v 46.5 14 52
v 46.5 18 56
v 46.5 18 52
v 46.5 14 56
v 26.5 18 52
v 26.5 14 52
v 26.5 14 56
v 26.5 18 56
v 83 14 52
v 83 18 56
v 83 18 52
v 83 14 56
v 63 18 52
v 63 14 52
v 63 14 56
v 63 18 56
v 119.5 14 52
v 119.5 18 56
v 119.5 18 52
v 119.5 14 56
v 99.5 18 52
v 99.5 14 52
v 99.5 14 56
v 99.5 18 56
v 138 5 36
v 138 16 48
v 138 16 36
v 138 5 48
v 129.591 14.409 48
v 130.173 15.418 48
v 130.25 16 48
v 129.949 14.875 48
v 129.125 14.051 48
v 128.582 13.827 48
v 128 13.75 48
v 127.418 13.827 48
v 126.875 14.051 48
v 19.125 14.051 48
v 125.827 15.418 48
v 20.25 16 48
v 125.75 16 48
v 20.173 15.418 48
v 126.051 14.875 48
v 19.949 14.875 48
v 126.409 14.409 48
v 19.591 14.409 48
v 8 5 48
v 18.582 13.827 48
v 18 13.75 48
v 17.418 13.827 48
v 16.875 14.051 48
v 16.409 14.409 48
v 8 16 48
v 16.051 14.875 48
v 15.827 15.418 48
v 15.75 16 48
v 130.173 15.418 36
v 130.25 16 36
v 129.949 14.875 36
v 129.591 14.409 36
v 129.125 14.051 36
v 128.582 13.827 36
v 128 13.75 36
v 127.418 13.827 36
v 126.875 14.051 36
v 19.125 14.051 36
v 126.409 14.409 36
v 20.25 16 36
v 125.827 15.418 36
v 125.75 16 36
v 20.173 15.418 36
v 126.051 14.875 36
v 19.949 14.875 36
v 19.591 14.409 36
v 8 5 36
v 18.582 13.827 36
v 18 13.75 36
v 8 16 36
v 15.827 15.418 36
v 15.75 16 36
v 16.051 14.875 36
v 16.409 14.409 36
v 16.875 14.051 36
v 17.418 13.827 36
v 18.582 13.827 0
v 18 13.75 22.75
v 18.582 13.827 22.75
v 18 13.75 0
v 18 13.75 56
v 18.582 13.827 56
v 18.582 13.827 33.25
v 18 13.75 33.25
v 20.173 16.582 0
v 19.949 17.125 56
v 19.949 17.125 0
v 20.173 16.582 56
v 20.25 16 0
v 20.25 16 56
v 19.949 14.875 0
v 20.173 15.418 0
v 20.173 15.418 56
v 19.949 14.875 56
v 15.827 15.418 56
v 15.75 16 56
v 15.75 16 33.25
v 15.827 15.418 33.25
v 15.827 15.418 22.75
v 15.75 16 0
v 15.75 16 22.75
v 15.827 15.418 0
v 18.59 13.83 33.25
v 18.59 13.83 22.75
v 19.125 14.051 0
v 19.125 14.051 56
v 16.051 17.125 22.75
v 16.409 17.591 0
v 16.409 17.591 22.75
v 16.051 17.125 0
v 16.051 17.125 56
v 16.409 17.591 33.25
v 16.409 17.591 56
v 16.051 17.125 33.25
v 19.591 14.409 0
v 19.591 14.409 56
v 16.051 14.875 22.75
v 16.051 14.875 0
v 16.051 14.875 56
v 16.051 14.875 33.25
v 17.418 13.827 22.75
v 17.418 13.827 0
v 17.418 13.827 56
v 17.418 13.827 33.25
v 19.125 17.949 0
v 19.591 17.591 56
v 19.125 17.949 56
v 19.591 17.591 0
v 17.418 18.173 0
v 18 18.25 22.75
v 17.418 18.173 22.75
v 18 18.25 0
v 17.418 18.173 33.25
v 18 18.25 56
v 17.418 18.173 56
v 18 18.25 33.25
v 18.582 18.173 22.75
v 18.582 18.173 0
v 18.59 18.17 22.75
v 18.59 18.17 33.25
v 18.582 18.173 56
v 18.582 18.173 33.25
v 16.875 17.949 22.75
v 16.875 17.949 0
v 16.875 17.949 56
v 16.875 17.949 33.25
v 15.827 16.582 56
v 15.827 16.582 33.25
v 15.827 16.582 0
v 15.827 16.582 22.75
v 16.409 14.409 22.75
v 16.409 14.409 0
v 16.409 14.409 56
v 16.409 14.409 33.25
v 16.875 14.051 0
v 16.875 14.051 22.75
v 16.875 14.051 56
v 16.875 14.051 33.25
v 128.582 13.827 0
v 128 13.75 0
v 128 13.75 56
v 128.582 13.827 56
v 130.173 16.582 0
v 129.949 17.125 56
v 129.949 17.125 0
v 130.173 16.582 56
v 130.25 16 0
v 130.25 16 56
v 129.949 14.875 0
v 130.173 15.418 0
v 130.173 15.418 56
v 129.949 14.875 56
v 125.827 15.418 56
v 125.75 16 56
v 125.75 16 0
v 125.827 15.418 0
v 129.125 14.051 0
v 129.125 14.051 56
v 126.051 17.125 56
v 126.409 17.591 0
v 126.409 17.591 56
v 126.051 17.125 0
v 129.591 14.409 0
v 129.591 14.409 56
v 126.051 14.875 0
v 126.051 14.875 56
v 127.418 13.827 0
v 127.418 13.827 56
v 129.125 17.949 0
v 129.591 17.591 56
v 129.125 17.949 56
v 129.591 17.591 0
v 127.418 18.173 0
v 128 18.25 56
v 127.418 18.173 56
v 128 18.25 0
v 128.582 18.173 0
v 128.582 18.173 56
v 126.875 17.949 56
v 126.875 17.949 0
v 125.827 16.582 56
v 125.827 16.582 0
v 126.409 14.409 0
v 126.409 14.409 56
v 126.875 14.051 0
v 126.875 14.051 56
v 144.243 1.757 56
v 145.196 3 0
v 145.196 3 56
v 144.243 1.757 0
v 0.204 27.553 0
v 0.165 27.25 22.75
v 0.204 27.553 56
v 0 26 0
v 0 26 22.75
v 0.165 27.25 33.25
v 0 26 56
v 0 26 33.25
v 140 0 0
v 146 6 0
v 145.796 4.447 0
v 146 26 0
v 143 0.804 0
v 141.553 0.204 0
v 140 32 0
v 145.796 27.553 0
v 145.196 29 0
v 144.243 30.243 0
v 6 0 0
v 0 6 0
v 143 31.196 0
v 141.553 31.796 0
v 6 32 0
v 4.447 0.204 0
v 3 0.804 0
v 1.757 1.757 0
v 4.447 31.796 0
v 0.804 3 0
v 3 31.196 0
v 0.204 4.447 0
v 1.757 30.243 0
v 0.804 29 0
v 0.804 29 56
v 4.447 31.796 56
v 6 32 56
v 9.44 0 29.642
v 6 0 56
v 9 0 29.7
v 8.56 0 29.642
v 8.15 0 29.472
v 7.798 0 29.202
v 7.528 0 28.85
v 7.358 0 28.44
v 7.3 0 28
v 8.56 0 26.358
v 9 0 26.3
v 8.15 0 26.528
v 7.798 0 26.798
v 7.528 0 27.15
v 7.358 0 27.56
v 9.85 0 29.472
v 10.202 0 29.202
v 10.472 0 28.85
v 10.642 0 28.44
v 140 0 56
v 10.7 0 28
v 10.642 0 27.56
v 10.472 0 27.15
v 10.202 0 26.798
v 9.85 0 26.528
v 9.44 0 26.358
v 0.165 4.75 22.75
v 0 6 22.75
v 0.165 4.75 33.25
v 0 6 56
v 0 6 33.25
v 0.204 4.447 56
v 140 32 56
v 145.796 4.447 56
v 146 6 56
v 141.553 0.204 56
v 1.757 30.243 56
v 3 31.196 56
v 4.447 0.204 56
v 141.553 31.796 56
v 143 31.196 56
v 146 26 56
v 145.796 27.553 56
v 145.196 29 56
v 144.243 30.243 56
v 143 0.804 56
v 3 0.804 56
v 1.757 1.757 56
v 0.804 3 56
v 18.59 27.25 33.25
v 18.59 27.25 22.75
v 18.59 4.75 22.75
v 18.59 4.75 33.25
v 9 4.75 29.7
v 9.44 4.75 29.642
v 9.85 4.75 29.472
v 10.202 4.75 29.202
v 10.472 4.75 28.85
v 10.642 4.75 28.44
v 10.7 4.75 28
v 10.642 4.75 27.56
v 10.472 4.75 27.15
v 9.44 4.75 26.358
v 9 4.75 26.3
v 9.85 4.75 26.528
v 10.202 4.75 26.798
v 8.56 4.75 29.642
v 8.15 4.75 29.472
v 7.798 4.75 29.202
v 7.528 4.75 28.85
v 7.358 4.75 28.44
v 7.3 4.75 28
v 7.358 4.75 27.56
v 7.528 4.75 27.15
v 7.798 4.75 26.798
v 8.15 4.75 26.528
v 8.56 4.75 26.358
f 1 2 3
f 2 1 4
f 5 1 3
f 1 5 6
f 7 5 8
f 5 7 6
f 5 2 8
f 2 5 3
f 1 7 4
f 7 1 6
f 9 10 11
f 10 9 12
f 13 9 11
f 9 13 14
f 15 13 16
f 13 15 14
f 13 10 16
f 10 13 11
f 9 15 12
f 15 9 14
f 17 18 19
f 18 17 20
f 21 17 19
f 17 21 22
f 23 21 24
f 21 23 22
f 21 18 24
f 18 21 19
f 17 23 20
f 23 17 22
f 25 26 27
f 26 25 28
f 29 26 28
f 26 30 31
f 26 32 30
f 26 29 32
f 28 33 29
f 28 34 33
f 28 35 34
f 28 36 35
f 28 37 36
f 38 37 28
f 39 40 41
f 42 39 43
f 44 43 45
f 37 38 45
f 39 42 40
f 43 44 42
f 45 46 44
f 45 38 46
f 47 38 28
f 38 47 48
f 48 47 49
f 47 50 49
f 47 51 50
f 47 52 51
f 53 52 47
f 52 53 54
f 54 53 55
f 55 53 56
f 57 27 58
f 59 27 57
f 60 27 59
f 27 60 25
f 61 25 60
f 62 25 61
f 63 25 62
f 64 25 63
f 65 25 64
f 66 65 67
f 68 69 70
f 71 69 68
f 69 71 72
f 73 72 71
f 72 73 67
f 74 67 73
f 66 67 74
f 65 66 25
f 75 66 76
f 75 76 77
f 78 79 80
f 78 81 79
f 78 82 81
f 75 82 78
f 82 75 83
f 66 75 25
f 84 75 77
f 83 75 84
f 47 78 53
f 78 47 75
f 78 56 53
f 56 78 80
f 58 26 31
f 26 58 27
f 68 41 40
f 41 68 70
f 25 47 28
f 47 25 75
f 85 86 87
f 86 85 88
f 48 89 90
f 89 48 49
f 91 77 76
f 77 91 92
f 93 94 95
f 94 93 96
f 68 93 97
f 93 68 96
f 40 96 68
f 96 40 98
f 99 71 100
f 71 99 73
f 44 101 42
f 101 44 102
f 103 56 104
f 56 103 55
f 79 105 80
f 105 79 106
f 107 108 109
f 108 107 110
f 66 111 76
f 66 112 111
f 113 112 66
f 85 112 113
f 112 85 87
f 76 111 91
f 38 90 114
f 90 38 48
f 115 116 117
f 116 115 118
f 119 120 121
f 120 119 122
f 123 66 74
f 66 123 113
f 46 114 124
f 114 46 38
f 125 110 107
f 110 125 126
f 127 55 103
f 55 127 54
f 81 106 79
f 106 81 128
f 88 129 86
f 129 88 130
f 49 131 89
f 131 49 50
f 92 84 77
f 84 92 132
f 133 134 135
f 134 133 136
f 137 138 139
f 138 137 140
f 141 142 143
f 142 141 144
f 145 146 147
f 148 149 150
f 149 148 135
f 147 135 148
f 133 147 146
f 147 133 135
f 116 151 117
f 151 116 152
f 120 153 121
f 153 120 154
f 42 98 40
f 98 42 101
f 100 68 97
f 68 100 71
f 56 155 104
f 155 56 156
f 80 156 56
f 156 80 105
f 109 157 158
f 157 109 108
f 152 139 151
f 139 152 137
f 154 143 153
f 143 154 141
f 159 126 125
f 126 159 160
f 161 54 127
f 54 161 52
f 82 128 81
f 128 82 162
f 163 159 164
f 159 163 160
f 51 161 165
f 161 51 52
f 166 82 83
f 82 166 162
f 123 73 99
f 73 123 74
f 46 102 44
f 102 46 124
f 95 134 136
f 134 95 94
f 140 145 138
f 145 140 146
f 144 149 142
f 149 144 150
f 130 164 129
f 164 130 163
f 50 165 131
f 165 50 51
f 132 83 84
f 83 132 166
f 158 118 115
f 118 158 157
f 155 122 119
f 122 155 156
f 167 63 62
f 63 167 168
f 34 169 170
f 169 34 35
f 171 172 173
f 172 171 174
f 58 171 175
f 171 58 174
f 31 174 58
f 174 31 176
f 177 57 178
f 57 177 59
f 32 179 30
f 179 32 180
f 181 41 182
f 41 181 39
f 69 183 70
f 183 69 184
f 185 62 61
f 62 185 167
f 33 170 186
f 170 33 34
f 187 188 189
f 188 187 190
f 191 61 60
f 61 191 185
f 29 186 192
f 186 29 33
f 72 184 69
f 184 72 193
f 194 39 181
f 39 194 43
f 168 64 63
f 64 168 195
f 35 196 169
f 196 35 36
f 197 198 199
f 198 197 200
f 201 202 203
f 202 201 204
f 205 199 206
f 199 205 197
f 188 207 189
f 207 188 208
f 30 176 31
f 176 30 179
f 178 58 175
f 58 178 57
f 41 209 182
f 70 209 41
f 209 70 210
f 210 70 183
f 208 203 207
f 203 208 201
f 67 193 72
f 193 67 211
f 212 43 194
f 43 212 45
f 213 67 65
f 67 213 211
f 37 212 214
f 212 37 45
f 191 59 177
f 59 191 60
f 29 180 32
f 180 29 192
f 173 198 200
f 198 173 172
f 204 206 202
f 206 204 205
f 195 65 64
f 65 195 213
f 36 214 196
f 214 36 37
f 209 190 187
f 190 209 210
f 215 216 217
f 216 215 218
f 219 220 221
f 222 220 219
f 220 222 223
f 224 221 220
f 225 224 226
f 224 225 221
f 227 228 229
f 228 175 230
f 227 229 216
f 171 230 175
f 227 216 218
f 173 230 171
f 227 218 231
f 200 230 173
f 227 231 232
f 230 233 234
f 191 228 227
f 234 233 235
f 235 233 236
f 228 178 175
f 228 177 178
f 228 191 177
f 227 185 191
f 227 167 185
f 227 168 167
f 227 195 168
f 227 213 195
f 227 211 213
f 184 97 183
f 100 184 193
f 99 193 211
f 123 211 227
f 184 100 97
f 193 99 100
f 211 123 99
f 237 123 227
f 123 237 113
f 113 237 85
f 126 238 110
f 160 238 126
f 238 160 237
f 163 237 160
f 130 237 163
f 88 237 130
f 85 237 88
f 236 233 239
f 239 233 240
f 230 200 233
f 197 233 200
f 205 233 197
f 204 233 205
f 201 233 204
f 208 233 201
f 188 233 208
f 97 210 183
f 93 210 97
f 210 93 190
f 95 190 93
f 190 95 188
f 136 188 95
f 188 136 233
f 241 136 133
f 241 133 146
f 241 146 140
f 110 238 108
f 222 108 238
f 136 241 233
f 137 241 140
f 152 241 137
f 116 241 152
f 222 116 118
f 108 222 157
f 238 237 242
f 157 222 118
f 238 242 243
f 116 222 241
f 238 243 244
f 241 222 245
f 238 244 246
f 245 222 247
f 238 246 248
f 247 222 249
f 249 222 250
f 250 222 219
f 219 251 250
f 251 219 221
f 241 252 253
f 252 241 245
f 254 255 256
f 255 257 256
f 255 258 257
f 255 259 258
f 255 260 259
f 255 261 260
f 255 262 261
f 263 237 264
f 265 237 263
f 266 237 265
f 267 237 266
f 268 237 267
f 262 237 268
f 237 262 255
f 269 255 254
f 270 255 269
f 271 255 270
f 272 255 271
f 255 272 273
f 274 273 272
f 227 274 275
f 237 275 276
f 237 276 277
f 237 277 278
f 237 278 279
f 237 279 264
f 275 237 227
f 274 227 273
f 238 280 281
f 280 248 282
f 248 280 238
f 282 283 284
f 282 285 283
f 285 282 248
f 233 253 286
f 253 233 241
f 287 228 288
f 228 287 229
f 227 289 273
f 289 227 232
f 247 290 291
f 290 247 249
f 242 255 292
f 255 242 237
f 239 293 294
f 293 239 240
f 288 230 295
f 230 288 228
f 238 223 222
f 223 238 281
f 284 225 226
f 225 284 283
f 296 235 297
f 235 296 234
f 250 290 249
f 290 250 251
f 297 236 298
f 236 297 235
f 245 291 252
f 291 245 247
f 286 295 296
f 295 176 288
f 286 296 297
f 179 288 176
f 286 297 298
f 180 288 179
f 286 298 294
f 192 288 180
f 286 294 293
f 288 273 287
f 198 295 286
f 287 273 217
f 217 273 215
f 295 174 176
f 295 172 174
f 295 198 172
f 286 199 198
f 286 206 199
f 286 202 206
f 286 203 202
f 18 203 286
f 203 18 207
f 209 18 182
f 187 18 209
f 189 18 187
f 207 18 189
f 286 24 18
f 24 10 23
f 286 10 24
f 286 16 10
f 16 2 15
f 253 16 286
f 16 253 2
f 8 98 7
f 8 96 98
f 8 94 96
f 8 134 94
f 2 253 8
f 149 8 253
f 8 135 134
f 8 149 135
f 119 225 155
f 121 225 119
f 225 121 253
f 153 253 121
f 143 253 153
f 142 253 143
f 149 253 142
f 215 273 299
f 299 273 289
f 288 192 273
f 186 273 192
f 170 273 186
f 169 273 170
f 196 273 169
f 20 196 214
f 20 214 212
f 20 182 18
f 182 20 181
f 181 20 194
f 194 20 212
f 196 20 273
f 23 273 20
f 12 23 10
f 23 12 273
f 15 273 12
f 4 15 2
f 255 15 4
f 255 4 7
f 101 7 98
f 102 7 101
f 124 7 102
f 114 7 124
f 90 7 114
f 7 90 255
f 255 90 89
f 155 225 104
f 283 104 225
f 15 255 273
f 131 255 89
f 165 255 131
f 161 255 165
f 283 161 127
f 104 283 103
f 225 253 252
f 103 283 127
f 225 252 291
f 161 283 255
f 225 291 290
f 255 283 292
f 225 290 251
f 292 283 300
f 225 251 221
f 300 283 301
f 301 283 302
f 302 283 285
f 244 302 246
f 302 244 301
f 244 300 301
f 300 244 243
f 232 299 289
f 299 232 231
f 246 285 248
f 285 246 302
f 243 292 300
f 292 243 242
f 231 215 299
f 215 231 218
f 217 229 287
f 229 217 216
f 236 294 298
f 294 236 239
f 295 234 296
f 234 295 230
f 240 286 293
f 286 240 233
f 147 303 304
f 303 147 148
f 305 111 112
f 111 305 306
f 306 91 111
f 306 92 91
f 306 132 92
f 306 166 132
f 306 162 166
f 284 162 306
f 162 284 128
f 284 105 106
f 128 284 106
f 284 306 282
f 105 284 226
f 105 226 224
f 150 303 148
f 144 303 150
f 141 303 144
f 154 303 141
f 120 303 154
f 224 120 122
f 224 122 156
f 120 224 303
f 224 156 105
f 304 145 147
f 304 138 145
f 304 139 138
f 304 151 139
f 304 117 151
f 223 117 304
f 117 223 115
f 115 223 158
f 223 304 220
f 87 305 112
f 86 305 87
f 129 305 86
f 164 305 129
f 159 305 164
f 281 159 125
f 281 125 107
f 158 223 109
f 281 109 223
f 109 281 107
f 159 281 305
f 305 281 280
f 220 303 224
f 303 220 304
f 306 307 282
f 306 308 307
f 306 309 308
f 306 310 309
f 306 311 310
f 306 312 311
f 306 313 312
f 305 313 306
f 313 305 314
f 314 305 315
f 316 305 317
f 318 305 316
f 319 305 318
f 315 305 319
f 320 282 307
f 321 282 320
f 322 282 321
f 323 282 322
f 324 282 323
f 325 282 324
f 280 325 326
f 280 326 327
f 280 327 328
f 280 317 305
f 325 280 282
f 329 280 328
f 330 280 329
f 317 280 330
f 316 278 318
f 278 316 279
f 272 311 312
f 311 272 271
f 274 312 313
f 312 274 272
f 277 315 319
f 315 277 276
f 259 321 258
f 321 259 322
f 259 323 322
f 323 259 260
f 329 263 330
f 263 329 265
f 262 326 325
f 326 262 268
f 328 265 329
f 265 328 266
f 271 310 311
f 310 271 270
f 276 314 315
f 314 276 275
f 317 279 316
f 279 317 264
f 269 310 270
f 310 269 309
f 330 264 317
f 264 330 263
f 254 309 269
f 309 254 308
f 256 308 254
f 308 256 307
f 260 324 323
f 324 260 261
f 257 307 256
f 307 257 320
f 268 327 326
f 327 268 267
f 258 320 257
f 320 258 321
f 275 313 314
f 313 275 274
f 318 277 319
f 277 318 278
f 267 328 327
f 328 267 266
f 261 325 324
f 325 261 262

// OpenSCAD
// file: 00_parameters.scad
// TenderCells DoorCell V1 shared parameters
// Units: millimeters

overall_w = 438;
overall_h = 368;
frame_depth = 56;

clear_w = 242;
clear_h = 312;

rail_thick = 32;
jamb_w = 48;
motor_jamb_w = 78;

// Printability targets
target_bed_xy = 220;
comfortable_part_max = 180;

// Modular frame split dimensions
top_seg_len = overall_w / 3;
bottom_seg_len = overall_w / 3;
left_jamb_seg_h = overall_h / 2;
right_lower_h = 118;
right_motor_h = 156;
right_upper_h = overall_h - right_lower_h - right_motor_h;

// Low-cost electronics envelope used by DoorCell V1.4.
// These dimensions are based on common generic modules, not a custom PCB.
esp32_board = [58, 31, 8];
drv8871_board = [31, 26, 7];
current_sensor_board = [26, 22, 7];
lm2596_board = [44, 22, 14];
inline_fuse_body = [45, 15, 14];
cn3065_board = [44, 24, 8];
electronics_clearance = 1.5;
controller_wall = 3;
controller_box_w = 170;
controller_box_h = 115;
controller_box_d = 46;
controller_lid_insert_offset = 11;
controller_m12_gland_d = 12.8;
controller_m10_gland_d = 10.6;
controller_m8_gland_d = 8.4;
controller_button_d = 16.2;

// Brass heat-set/push-in insert features.
insert_post_d = 8.0;
insert_post_h = 8.0;
insert_pilot_d = 4.6;
insert_pilot_depth = 6.5;
hold_down_screw_clearance = 3.4;

// Motor envelope for common 25GA/JGA25-370 gearmotors with optional encoder.
motor_body_d = 25.0;
motor_body_clearance_d = 27.2;
motor_body_len = 65;
motor_encoder_clearance = 16;
motor_mount_plate = [72, 92, 12];
motor_mount_cradle = [54, 74, 28];

// Optional solar add-on.
solar_panel_w = 145;
solar_panel_h = 145;
solar_panel_t = 4.0;
solar_panel_frame_border = 10;
solar_panel_frame_w = solar_panel_w + 2*solar_panel_frame_border;
solar_panel_frame_h = solar_panel_h + 2*solar_panel_frame_border;
solar_panel_back_depth = 14;
solar_panel_lip_overlap = 3;
solar_ball_d = 22;
solar_ball_socket_clearance = 0.45;
solar_mount_m5 = 5.4;

// Tongue-and-groove frame joints
// Fit target: common FDM printers with PETG/ASA.
// Clearance is per side, so sockets add 2x this value.
tongue_len = 18;
tongue_w = 22;
tongue_z = 10;
tongue_clearance_side = 0.25;
tongue_socket_depth_extra = 0.60;

door_w = 270;
door_h = 326;
door_t = 8;

track_gap = 11;
track_depth = 12;

// Rack-and-pinion drive
// Metric module gear math:
// circular_pitch = PI * module
// pitch_diameter = module * tooth_count
// outside_diameter = module * (tooth_count + 2)
// root_diameter = module * (tooth_count - 2.5)
gear_module = 2.0;
pressure_angle = 20;
gear_backlash = 0.20; // mm removed from rack tooth thickness at pitch line

pinion_teeth = 16;
pinion_pitch_d = gear_module * pinion_teeth;
pinion_pitch_radius = pinion_pitch_d / 2;
pinion_outer_d = gear_module * (pinion_teeth + 2);
pinion_outer_radius = pinion_outer_d / 2;
pinion_root_d = gear_module * (pinion_teeth - 2.5);
pinion_root_radius = pinion_root_d / 2;
pinion_thick = 12;
shaft_d = 6.2;

rack_tooth_count = 15;
rack_circular_pitch = 3.141592653589793 * gear_module;
rack_len = rack_circular_pitch * rack_tooth_count;
rack_w = 18;
rack_t = 6;
rack_addendum = gear_module;
rack_dedendum = 1.25 * gear_module;
rack_tooth_h = rack_addendum + rack_dedendum;
rack_pitch_line_z = rack_dedendum;
rack_tooth_pitch_thickness = rack_circular_pitch / 2 - gear_backlash;
rack_tooth_top_w = rack_tooth_pitch_thickness - 2 * rack_addendum * tan(pressure_angle);
rack_tooth_root_w = rack_tooth_pitch_thickness + 2 * rack_dedendum * tan(pressure_angle);

screw_m3 = 3.4;
screw_m4 = 4.5;
insert_m3 = 4.6;

eps = 0.01;

module rounded_box(size=[10,10,10], r=2) {
  hull() {
    translate([r,r,0]) cylinder(h=size[2], r=r, $fn=24);
    translate([size[0]-r,r,0]) cylinder(h=size[2], r=r, $fn=24);
    translate([r,size[1]-r,0]) cylinder(h=size[2], r=r, $fn=24);
    translate([size[0]-r,size[1]-r,0]) cylinder(h=size[2], r=r, $fn=24);
  }
}

module m3_clearance_hole(h=20) {
  cylinder(h=h, d=screw_m3, $fn=24);
}

module m4_clearance_hole(h=20) {
  cylinder(h=h, d=screw_m4, $fn=24);
}

module heat_insert_hole(h=6) {
  cylinder(h=h, d=insert_m3, $fn=24);
}

module heat_insert_post(h=insert_post_h, d=insert_post_d) {
  difference() {
    cylinder(h=h, d=d, $fn=32);
    translate([0,0,h-insert_pilot_depth+eps])
      cylinder(h=insert_pilot_depth+eps, d=insert_pilot_d, $fn=24);
  }
}

module m3_hold_down_slot(length=10, h=4) {
  hull() {
    translate([-length/2,0,0]) cylinder(h=h, d=hold_down_screw_clearance, $fn=20);
    translate([ length/2,0,0]) cylinder(h=h, d=hold_down_screw_clearance, $fn=20);
  }
}

module rail_channel(length=100) {
  cube([length, track_gap, track_depth]);
}

module frame_tongue_x() {
  rounded_box([tongue_len, tongue_w, tongue_z], r=1.5);
}

module frame_socket_x() {
  cube([
    tongue_len + tongue_socket_depth_extra,
    tongue_w + 2*tongue_clearance_side,
    tongue_z + 2*tongue_clearance_side
  ]);
}

module frame_tongue_y() {
  rounded_box([tongue_w, tongue_len, tongue_z], r=1.5);
}

module frame_socket_y() {
  cube([
    tongue_w + 2*tongue_clearance_side,
    tongue_len + tongue_socket_depth_extra,
    tongue_z + 2*tongue_clearance_side
  ]);
}

module rack_teeth(len=rack_len) {
  teeth = floor(len / rack_circular_pitch);
  for (i=[0:teeth-1]) {
    center = i*rack_circular_pitch + rack_circular_pitch/2;
    translate([0, 0, rack_t-0.20])
      linear_extrude(height=rack_w)
        polygon(points=[
          [center - rack_tooth_root_w/2, 0],
          [center + rack_tooth_root_w/2, 0],
          [center + rack_tooth_top_w/2, rack_tooth_h],
          [center - rack_tooth_top_w/2, rack_tooth_h]
        ]);
  }
}

function polar_point(r, a) = [r * cos(a), r * sin(a)];
// file: frame_modular_common.scad
include <00_parameters.scad>

module horizontal_frame_segment(seg_len=top_seg_len, rail_kind="top", joint_left="socket", joint_right="tongue") {
  difference() {
    union() {
      rounded_box([seg_len, rail_thick, frame_depth], r=6);

      if (joint_right == "tongue") {
        translate([seg_len - eps, rail_thick/2 - tongue_w/2, frame_depth/2 - tongue_z/2])
          frame_tongue_x();
      }
    }

    // Tongue receiver from previous segment.
    if (joint_left == "socket") {
      translate([
        -eps,
        rail_thick/2 - (tongue_w + 2*tongue_clearance_side)/2,
        frame_depth/2 - (tongue_z + 2*tongue_clearance_side)/2
      ])
        frame_socket_x();
    }

    // Sliding door guide channel.
    if (rail_kind == "top") {
      translate([8, rail_thick-track_gap-5, 8])
        rail_channel(length=seg_len-16);
    } else {
      translate([8, 5, frame_depth-track_depth-8])
        rail_channel(length=seg_len-16);

      // Drain slots for bottom rail.
      for (x=[seg_len*0.25, seg_len*0.5, seg_len*0.75]) {
        translate([x-10, rail_thick/2-2, frame_depth-4])
          cube([20, 4, 10]);
      }
    }

    // Coop mounting holes.
    for (x=[18, seg_len-18]) {
      translate([x, rail_thick/2, -eps])
        m4_clearance_hole(h=frame_depth+2);
    }

    // Cross-bolt holes near frame split joints.
    if (joint_left == "socket") {
      translate([tongue_len/2, rail_thick/2, frame_depth/2])
        rotate([90,0,0]) m3_clearance_hole(h=rail_thick+2);
    }
    if (joint_right == "tongue") {
      translate([seg_len + tongue_len/2 - 2, rail_thick/2, frame_depth/2])
        rotate([90,0,0]) m3_clearance_hole(h=rail_thick+2);
    }
  }
}

module left_jamb_segment(seg_h=left_jamb_seg_h, joint_bottom="socket", joint_top="tongue", corner_bottom=false, corner_top=false) {
  difference() {
    union() {
      rounded_box([jamb_w, seg_h, frame_depth], r=6);

      if (joint_top == "tongue") {
        translate([jamb_w/2 - tongue_w/2, seg_h - eps, frame_depth/2 - tongue_z/2])
          frame_tongue_y();
      }
    }

    if (joint_bottom == "socket") {
      translate([
        jamb_w/2 - (tongue_w + 2*tongue_clearance_side)/2,
        -eps,
        frame_depth/2 - (tongue_z + 2*tongue_clearance_side)/2
      ])
        frame_socket_y();
    }

    // Door pocket relief.
    translate([jamb_w-18, 0, 8])
      cube([16, seg_h, frame_depth-16]);

    // Coop mounting holes.
    for (y=[seg_h*0.28, seg_h*0.72]) {
      translate([jamb_w/2, y, -eps]) m4_clearance_hole(h=frame_depth+2);
    }

    // Rail-to-jamb corner holes.
    if (corner_bottom) {
      translate([jamb_w-10, 16, frame_depth/2])
        rotate([0,90,0]) m3_clearance_hole(h=20);
    }
    if (corner_top) {
      translate([jamb_w-10, seg_h-16, frame_depth/2])
        rotate([0,90,0]) m3_clearance_hole(h=20);
    }

    // Cross-bolt through tongue-and-groove.
    if (joint_bottom == "socket") {
      translate([jamb_w/2, tongue_len/2, frame_depth/2])
        rotate([0,90,0]) m3_clearance_hole(h=jamb_w+2);
    }
    if (joint_top == "tongue") {
      translate([jamb_w/2, seg_h + tongue_len/2 - 2, frame_depth/2])
        rotate([0,90,0]) m3_clearance_hole(h=jamb_w+2);
    }
  }
}

module right_jamb_segment(seg_h=120, has_motor_bay=false, joint_bottom="socket", joint_top="tongue", corner_bottom=false, corner_top=false) {
  difference() {
    union() {
      rounded_box([motor_jamb_w, seg_h, frame_depth], r=6);

      if (has_motor_bay) {
        translate([motor_jamb_w-8, 20, 0])
          rounded_box([70, seg_h-32, frame_depth], r=5);
      }

      if (joint_top == "tongue") {
        translate([motor_jamb_w/2 - tongue_w/2, seg_h - eps, frame_depth/2 - tongue_z/2])
          frame_tongue_y();
      }
    }

    if (joint_bottom == "socket") {
      translate([
        motor_jamb_w/2 - (tongue_w + 2*tongue_clearance_side)/2,
        -eps,
        frame_depth/2 - (tongue_z + 2*tongue_clearance_side)/2
      ])
        frame_socket_y();
    }

    // Door pocket relief.
    translate([0, 0, 8])
      cube([20, seg_h, frame_depth-16]);

    if (has_motor_bay) {
      // Motor cassette pocket sized for the revised 25GA mount.
      translate([motor_jamb_w+5, 33, 8])
        cube([62, 92, 40]);

      // Pinion/rack engagement window.
      translate([4, 68, 16])
        cube([46, 36, 24]);

      // Motor/control harness pass-through for M12-style cable gland routing.
      translate([motor_jamb_w+26, seg_h-42, 16])
        cube([24, 34, 26]);

      // Limit switch lead pass-throughs.
      translate([motor_jamb_w-2, 18, 18])
        cube([16, 18, 16]);
      translate([motor_jamb_w-2, seg_h-36, 18])
        cube([16, 18, 16]);
    }

    // Coop mounting holes.
    for (y=[seg_h*0.28, seg_h*0.72]) {
      translate([motor_jamb_w/2, y, -eps]) m4_clearance_hole(h=frame_depth+2);
    }

    // Rail-to-jamb corner holes.
    if (corner_bottom) {
      translate([10, 16, frame_depth/2])
        rotate([0,90,0]) m3_clearance_hole(h=20);
    }
    if (corner_top) {
      translate([10, seg_h-16, frame_depth/2])
        rotate([0,90,0]) m3_clearance_hole(h=20);
    }

    // Cross-bolt through tongue-and-groove.
    if (joint_bottom == "socket") {
      translate([motor_jamb_w/2, tongue_len/2, frame_depth/2])
        rotate([0,90,0]) m3_clearance_hole(h=motor_jamb_w+2);
    }
    if (joint_top == "tongue") {
      translate([motor_jamb_w/2, seg_h + tongue_len/2 - 2, frame_depth/2])
        rotate([0,90,0]) m3_clearance_hole(h=motor_jamb_w+2);
    }
  }
}
// main file
include <frame_modular_common.scad>

horizontal_frame_segment(seg_len=bottom_seg_len, rail_kind="bottom", joint_left="socket", joint_right="none");
